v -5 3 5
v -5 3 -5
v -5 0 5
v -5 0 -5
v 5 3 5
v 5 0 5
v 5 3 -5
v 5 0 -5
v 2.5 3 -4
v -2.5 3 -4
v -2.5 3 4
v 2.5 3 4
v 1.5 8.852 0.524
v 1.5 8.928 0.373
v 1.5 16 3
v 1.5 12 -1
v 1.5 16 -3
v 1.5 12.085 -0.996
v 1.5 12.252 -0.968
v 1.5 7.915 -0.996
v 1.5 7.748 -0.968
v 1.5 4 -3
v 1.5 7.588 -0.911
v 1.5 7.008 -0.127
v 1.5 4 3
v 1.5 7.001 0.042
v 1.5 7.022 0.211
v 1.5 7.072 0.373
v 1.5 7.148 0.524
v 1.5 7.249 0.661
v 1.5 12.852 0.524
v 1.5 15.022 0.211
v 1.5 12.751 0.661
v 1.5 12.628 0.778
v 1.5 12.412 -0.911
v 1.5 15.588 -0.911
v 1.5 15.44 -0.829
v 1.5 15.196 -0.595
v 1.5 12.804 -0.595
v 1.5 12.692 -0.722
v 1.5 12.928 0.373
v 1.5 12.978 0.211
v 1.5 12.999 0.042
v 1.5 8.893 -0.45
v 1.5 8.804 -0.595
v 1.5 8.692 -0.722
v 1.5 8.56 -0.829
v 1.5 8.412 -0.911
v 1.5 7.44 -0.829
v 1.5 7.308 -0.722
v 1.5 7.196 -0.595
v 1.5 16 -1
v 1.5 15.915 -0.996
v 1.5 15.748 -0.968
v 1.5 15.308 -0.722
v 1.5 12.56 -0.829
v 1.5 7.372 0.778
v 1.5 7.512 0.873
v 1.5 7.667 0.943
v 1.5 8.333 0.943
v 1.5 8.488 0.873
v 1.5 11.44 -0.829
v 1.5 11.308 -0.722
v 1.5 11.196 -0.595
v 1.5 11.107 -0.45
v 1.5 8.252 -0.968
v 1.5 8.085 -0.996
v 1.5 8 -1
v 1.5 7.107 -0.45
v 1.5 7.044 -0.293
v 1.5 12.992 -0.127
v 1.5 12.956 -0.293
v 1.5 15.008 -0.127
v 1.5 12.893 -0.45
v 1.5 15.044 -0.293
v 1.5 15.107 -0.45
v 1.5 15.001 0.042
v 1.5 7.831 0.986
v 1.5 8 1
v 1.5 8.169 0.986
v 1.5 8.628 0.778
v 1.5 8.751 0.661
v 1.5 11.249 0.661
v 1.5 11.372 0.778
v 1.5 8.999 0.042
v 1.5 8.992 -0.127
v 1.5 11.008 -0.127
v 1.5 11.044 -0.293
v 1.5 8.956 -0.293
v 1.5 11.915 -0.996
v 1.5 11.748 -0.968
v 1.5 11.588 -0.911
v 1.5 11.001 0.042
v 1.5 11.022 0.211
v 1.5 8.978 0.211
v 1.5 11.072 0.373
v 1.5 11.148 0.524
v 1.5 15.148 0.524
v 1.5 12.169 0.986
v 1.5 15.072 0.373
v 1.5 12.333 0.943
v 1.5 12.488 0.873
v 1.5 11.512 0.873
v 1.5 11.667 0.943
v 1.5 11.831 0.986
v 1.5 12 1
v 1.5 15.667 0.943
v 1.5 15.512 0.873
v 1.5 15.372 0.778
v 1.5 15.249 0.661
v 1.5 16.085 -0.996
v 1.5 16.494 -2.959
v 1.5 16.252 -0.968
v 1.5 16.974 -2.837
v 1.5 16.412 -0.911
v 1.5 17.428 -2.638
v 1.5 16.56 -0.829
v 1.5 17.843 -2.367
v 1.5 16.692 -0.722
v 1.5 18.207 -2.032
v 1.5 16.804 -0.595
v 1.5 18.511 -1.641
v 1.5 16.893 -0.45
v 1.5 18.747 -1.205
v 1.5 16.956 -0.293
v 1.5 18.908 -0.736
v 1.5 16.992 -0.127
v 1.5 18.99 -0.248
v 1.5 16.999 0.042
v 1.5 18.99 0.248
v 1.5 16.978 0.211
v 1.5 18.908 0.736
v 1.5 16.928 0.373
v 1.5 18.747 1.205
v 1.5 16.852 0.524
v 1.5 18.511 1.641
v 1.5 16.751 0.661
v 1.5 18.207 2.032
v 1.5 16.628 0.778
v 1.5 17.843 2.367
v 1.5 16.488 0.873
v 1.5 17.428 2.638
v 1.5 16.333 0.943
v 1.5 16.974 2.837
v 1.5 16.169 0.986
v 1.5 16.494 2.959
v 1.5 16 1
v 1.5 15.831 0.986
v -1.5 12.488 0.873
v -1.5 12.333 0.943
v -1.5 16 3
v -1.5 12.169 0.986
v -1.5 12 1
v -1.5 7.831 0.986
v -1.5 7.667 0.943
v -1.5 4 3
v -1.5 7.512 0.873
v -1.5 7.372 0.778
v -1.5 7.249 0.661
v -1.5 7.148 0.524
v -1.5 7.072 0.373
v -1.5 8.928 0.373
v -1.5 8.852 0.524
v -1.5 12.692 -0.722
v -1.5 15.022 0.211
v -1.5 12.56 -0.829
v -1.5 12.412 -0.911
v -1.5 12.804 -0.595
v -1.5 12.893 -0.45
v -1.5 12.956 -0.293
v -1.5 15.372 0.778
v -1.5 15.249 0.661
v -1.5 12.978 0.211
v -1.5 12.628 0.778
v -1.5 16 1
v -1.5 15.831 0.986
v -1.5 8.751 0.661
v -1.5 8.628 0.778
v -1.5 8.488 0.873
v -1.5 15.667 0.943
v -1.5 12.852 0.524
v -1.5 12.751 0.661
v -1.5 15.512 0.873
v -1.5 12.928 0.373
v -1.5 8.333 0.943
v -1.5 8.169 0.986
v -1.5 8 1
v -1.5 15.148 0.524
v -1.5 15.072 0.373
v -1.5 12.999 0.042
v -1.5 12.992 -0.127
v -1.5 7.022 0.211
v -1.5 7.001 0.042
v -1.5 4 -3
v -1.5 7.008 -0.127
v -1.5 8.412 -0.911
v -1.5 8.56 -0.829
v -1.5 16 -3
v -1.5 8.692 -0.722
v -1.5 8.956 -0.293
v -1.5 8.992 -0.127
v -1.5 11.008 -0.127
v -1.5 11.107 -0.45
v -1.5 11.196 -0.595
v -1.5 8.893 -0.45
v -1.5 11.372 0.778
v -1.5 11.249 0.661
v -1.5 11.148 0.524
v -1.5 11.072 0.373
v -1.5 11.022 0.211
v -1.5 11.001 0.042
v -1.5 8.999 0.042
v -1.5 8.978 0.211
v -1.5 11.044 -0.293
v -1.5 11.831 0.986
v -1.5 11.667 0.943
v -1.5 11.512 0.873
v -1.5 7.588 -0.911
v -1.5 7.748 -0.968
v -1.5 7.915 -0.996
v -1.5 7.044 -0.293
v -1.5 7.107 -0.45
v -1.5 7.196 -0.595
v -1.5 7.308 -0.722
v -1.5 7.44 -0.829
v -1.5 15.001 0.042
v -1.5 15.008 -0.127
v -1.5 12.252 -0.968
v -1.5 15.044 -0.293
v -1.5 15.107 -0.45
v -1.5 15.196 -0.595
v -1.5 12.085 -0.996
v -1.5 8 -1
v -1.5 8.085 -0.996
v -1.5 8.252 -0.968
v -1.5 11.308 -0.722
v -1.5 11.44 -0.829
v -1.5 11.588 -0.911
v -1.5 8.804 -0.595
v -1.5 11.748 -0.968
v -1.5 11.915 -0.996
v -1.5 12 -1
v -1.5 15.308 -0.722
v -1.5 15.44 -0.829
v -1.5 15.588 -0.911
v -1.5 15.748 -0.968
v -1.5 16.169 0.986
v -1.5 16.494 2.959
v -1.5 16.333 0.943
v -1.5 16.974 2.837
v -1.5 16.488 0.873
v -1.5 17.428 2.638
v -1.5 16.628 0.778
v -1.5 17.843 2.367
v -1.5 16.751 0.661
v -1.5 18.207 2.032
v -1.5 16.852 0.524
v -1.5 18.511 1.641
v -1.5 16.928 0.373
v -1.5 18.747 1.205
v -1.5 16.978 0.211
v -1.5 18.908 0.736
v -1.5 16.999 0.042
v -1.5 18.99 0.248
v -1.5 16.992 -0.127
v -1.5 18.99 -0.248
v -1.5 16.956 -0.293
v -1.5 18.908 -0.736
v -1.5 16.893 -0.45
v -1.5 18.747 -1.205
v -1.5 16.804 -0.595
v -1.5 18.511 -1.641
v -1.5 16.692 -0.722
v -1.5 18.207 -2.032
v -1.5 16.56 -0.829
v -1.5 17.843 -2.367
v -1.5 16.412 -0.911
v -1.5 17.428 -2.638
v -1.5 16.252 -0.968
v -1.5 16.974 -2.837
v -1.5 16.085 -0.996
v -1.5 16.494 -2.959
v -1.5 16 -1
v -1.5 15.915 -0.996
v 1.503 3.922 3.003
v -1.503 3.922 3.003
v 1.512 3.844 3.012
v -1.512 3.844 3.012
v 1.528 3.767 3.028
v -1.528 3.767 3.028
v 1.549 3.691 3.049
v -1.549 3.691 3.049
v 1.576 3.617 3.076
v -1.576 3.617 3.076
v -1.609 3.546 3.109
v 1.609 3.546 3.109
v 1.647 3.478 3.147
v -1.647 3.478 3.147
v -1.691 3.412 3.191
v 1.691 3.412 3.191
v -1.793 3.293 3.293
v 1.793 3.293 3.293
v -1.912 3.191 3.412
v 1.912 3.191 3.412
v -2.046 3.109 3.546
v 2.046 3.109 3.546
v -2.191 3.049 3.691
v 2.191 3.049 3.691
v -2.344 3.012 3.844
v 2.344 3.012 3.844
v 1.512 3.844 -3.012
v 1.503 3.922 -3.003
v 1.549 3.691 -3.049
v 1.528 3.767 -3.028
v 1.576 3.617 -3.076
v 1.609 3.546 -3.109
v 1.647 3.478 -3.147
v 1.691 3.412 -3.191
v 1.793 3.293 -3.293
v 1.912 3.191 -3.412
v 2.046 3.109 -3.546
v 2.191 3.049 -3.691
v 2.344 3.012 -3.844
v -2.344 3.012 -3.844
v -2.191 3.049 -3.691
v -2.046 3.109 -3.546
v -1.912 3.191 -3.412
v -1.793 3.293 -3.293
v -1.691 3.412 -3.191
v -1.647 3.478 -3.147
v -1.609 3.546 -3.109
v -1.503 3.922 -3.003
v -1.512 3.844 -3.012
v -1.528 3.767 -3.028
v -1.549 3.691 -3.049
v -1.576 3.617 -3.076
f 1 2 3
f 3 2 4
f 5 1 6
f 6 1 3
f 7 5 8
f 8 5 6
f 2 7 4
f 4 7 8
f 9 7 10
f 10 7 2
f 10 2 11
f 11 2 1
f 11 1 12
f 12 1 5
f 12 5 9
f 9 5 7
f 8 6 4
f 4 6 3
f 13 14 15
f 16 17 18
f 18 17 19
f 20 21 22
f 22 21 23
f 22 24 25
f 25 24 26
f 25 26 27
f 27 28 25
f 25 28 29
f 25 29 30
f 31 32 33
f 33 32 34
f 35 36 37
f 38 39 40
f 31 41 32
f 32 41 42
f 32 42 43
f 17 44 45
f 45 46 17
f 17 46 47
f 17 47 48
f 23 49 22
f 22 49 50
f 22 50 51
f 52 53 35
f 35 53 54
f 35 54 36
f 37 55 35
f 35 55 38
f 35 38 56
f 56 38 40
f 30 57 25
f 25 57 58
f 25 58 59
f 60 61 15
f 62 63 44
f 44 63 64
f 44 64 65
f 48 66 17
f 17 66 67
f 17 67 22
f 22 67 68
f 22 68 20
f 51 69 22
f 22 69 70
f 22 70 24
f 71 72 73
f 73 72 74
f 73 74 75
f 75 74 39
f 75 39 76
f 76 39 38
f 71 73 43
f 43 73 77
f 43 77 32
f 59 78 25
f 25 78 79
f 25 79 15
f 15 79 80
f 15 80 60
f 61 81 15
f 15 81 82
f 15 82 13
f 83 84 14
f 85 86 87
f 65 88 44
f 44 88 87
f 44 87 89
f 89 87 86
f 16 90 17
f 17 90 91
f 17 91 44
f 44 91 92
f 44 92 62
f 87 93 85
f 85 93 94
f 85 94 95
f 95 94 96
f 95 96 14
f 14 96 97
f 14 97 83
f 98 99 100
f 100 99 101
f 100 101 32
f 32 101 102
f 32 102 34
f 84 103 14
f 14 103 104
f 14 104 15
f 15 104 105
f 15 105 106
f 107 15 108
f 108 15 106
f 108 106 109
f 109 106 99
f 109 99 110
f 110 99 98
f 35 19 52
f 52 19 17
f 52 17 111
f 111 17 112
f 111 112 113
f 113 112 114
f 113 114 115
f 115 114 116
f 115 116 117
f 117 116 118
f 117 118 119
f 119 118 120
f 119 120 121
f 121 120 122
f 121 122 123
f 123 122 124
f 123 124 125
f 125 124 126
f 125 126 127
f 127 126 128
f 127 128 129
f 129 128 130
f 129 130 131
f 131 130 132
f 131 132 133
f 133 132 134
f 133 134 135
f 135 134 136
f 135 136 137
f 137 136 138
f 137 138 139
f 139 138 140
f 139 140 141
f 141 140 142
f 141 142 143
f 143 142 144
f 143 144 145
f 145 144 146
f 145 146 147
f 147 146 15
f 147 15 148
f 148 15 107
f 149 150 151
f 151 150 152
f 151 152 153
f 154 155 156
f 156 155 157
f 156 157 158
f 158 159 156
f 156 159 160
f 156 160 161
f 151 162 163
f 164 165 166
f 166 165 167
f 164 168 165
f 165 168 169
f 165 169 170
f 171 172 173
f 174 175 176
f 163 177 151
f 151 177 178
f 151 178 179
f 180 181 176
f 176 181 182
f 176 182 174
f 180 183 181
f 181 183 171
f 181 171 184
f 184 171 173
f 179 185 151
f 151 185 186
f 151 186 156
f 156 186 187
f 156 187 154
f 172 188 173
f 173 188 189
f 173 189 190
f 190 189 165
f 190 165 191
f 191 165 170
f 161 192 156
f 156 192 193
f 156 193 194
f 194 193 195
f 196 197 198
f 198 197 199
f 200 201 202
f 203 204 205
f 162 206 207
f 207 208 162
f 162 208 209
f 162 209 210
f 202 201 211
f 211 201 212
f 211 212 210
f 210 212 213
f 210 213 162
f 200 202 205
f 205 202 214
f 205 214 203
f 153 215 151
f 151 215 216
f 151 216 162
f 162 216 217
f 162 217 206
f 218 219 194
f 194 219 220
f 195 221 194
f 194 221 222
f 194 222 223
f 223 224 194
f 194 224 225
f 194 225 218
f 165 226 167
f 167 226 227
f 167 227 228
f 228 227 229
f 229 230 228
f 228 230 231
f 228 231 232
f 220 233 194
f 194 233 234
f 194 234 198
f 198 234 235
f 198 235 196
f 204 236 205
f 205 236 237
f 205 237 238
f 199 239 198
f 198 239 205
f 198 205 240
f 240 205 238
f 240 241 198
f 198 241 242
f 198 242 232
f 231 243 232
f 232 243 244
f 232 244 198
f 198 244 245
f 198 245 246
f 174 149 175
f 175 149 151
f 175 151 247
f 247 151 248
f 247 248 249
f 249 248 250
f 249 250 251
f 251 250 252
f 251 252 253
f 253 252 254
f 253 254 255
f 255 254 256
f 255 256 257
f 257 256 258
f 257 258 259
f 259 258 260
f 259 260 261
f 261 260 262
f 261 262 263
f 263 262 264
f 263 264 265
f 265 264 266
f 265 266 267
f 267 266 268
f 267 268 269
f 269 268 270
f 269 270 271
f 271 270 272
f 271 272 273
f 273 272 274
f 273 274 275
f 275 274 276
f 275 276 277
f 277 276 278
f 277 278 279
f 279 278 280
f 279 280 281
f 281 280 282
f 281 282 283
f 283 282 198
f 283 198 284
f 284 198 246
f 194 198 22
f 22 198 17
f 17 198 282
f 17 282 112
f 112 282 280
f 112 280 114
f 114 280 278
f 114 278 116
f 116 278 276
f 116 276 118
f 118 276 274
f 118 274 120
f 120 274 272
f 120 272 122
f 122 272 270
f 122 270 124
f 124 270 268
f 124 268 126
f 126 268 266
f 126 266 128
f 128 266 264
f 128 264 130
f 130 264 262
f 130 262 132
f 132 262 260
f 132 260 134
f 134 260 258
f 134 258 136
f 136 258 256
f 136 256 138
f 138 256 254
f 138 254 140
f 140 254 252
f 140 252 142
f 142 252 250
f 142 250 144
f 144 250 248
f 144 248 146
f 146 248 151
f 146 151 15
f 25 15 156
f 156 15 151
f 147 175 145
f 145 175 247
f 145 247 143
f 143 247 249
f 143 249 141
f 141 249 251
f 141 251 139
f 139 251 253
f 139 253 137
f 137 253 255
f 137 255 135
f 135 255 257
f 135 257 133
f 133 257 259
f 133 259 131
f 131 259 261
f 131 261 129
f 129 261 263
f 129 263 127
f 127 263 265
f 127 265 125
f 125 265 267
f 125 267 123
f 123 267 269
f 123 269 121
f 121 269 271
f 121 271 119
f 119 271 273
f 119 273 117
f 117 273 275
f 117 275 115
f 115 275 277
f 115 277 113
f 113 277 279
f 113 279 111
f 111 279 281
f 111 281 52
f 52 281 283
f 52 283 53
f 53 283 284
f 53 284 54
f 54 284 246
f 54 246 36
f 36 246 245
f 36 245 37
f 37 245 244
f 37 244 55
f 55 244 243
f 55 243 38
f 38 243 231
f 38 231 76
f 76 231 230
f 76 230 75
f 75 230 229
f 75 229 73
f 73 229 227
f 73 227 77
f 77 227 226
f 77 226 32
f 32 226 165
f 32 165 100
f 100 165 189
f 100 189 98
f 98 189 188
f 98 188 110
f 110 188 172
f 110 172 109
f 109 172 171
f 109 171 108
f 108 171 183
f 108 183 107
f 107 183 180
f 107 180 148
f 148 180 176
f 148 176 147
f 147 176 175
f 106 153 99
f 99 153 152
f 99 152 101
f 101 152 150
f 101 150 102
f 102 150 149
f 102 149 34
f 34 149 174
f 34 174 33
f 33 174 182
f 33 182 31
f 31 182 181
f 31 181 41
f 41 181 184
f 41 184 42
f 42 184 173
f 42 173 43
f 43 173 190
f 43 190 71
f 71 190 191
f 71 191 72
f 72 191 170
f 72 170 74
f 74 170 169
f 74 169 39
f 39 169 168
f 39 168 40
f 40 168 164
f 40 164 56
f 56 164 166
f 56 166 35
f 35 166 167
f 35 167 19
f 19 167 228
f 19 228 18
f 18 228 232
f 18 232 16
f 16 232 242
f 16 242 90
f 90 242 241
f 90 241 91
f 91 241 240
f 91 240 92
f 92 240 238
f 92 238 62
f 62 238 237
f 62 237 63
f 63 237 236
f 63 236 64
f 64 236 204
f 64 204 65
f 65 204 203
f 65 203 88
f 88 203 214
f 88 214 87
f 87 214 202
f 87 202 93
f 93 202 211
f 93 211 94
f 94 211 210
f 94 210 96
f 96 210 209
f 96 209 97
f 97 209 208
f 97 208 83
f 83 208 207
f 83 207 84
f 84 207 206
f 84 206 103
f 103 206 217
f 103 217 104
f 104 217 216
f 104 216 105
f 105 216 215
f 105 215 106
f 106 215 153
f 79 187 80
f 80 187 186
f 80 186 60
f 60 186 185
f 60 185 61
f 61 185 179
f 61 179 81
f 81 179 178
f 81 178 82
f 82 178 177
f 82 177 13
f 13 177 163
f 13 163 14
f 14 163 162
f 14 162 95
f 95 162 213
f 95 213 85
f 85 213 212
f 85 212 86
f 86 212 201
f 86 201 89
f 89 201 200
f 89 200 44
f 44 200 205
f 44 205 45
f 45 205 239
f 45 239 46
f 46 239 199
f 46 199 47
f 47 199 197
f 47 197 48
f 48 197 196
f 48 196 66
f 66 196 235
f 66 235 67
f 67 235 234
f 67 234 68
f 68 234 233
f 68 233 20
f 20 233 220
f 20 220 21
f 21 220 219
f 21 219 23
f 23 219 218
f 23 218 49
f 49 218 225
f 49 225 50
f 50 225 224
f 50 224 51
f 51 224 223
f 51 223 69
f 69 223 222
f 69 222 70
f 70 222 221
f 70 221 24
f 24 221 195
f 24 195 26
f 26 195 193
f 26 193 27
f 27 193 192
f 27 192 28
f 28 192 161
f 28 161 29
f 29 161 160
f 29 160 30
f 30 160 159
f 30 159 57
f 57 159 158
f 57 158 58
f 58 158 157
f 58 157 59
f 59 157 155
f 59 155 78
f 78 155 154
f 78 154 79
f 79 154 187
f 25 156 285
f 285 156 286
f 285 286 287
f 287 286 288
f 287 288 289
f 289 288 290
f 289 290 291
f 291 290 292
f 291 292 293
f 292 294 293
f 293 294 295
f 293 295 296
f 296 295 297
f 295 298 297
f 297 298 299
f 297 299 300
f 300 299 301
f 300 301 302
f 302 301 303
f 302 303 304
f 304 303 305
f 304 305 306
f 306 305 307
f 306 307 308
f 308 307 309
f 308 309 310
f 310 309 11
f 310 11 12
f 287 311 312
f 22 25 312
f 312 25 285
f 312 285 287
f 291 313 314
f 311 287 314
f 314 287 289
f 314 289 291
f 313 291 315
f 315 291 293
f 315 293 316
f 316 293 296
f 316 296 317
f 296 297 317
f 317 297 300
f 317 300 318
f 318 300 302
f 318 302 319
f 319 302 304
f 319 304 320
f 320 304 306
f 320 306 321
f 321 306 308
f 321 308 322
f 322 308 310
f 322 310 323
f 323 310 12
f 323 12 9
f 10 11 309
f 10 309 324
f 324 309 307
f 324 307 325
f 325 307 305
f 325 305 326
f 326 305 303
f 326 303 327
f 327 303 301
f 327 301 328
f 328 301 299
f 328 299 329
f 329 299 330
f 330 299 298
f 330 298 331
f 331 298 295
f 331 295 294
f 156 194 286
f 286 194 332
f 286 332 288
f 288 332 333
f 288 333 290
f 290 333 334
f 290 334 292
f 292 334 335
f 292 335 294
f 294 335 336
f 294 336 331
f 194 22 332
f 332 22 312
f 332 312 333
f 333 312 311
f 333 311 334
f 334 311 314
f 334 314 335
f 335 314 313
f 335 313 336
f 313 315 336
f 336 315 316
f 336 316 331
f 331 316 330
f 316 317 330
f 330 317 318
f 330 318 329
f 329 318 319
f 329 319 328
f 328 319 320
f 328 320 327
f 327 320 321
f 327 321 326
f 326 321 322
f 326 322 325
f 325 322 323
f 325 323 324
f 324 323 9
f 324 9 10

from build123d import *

# Parameters (mm, degrees)
SKETCH1_W           = 10
SKETCH1_H           = 10
BOSS_EXTRUDE1_DEPTH = 3
SKETCH2_R           = 1
BOSS_EXTRUDE2_DEPTH = 1.5
FILLET1_R           = 1


with BuildPart() as part:
    # Sketch1 → Boss-Extrude1 (new body)
    with BuildSketch(Plane(origin=(0, 0, 0), x_dir=(1, 0, 0), z_dir=(0, 1, 0))):
        Rectangle(SKETCH1_W, SKETCH1_H)
    extrude(amount=BOSS_EXTRUDE1_DEPTH)

    # Sketch2 → Boss-Extrude2 (add, symmetric)
    with BuildSketch(Plane(origin=(0, 0, 0), x_dir=(0, 0, -1), z_dir=(1, 0, 0))):
        with BuildLine():
            Line((-3, 3), (-3, 16))
            ThreePointArc((-3, 16), (0, 19), (3, 16))
            Line((3, 16), (3, 3))
            Line((3, 3), (-3, 3))
        make_face()
        with Locations((0, 16)):
            Circle(SKETCH2_R, mode=Mode.SUBTRACT)
        with Locations((0, 12)):
            Circle(SKETCH2_R, mode=Mode.SUBTRACT)
        with Locations((0, 8)):
            Circle(SKETCH2_R, mode=Mode.SUBTRACT)
    extrude(amount=BOSS_EXTRUDE2_DEPTH, both=True)

    # Fillet1
    fillet1_edges = [part.edges().sort_by_distance(p)[0] for p in [
        (1.5, 3, 0),
        (-1.5, 3, 0),
        (0, 3, 3),
        (0, 3, -3),
    ]]
    fillet(fillet1_edges, radius=FILLET1_R)


solid = part.part
